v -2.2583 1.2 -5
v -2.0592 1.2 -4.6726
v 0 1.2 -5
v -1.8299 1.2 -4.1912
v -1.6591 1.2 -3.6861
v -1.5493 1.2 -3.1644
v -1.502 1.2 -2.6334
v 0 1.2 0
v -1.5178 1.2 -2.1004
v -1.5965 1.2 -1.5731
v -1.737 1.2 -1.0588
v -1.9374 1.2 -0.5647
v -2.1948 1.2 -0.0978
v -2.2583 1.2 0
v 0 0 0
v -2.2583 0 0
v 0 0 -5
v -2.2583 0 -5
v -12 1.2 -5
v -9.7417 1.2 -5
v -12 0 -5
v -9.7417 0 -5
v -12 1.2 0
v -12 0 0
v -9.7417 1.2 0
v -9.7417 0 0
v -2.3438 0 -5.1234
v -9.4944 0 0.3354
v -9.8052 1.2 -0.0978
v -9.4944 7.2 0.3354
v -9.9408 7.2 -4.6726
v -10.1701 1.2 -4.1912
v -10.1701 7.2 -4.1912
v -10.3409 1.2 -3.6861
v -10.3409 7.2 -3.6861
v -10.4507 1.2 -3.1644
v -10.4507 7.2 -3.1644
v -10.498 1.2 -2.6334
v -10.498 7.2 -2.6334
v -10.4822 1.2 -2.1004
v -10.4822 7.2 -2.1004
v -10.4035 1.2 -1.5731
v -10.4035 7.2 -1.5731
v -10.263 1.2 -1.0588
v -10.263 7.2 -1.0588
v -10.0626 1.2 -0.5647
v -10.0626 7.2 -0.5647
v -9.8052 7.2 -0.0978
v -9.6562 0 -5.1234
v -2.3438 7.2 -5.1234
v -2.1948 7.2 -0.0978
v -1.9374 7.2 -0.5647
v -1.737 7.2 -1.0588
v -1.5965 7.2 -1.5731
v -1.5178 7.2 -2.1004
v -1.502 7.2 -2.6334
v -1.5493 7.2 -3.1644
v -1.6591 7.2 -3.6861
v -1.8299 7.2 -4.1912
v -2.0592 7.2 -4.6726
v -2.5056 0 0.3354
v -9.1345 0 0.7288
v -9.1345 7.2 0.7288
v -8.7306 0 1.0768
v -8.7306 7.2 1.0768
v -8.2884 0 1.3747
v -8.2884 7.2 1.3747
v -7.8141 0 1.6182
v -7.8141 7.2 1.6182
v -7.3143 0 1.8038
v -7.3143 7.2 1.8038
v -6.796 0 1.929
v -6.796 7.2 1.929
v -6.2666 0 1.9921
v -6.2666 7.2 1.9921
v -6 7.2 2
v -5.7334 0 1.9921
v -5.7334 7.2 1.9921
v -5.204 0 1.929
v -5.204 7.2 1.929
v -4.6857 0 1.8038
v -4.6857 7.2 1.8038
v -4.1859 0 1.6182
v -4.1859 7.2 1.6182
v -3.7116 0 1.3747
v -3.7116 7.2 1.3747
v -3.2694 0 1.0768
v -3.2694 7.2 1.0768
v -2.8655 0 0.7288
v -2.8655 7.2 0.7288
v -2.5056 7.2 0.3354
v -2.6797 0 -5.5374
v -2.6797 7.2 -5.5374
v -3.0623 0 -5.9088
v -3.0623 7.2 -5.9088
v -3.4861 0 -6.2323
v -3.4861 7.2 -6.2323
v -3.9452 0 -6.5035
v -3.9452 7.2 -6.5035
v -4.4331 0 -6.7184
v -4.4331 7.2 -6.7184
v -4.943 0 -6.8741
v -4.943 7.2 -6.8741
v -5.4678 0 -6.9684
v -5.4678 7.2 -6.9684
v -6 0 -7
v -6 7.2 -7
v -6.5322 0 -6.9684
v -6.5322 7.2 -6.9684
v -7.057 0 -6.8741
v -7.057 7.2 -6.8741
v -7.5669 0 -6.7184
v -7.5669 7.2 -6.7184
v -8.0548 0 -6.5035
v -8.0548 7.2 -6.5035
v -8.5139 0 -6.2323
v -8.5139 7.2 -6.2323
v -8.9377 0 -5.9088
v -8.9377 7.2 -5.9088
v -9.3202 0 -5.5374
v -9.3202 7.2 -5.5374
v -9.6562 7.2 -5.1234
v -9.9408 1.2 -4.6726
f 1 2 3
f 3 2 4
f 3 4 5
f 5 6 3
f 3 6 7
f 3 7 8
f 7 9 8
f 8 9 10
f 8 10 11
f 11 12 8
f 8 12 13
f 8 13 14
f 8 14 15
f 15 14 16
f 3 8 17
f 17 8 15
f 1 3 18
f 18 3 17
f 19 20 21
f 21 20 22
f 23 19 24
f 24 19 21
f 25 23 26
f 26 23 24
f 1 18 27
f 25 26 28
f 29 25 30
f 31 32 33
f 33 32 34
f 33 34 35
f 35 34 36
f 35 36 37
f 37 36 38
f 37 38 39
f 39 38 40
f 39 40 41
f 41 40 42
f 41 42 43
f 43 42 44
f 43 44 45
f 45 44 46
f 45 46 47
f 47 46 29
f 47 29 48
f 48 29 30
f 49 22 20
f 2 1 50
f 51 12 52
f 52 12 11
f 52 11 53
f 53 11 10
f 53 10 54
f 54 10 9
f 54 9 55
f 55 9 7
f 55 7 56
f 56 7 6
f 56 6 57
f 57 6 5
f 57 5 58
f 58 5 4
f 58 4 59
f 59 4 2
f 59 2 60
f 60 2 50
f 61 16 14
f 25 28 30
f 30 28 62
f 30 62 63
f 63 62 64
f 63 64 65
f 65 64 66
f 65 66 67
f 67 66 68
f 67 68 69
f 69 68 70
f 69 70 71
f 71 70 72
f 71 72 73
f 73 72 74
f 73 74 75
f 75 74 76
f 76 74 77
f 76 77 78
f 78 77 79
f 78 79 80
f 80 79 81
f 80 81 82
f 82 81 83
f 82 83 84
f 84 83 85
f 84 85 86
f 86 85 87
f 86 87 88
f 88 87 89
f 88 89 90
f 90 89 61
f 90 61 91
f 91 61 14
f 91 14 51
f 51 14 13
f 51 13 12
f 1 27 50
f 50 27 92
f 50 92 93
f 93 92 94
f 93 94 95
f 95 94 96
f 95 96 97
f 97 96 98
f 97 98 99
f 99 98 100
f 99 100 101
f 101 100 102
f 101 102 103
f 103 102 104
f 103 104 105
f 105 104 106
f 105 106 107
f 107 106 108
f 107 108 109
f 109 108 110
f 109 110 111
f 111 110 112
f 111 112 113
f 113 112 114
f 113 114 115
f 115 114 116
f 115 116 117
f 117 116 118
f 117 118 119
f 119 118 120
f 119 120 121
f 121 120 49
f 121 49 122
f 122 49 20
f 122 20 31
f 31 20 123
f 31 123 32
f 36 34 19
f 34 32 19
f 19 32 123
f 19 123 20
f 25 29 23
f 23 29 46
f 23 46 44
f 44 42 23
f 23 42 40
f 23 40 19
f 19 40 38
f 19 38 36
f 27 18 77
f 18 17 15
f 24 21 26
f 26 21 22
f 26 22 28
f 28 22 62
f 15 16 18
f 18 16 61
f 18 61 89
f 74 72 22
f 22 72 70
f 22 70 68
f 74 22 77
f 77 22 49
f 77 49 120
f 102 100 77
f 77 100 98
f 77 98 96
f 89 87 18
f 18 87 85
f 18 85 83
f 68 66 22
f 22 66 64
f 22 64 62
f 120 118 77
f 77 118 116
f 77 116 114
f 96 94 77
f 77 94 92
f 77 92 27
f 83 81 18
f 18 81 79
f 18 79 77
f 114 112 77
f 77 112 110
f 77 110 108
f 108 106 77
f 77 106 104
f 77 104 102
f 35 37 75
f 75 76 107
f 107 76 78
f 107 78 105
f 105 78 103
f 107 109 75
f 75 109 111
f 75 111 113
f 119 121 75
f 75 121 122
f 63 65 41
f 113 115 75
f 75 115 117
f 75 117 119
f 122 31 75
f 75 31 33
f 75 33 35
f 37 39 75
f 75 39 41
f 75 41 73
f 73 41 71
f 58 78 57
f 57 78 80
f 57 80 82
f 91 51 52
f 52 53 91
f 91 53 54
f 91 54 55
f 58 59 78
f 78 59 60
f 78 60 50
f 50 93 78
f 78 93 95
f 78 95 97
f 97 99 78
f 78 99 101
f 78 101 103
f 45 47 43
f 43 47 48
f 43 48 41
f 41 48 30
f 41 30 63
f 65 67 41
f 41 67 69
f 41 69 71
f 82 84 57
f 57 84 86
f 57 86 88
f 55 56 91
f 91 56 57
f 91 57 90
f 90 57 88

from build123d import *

# Parameters (mm, degrees)
EXTRUDE_1_DEPTH = 1.2
SKETCH_2_R      = 4.5
EXTRUDE_2_DEPTH = 6


with BuildPart() as part:
    # 草图1 → 凸台-拉伸1 (new body)
    with BuildSketch(Plane(origin=(0, 0, 0), x_dir=(1, 0, 0), z_dir=(0, 1, 0))):
        with BuildLine():
            Line((-12, 0), (-9.741657387, 0))
            ThreePointArc((-9.741657387, 0), (-6, -2), (-2.258342613, 0))
            Line((-2.258342613, 0), (0, 0))
            Line((0, 0), (0, 5))
            Line((0, 5), (-2.258342613, 5))
            ThreePointArc((-2.258342613, 5), (-6, 7), (-9.741657387, 5))
            Line((-9.741657387, 5), (-12, 5))
            Line((-12, 5), (-12, 0))
        make_face()
    extrude(amount=EXTRUDE_1_DEPTH)

    # 草图2 → 凸台-拉伸2 (add)
    with BuildSketch(Plane(origin=(0, 1.2, 0), x_dir=(1, 0, 0), z_dir=(0, 1, 0))):
        with Locations(Location((-6, 2.5, 0), (0, 0, 146.251011404))):
            Circle(SKETCH_2_R)
    extrude(amount=EXTRUDE_2_DEPTH)


solid = part.part
